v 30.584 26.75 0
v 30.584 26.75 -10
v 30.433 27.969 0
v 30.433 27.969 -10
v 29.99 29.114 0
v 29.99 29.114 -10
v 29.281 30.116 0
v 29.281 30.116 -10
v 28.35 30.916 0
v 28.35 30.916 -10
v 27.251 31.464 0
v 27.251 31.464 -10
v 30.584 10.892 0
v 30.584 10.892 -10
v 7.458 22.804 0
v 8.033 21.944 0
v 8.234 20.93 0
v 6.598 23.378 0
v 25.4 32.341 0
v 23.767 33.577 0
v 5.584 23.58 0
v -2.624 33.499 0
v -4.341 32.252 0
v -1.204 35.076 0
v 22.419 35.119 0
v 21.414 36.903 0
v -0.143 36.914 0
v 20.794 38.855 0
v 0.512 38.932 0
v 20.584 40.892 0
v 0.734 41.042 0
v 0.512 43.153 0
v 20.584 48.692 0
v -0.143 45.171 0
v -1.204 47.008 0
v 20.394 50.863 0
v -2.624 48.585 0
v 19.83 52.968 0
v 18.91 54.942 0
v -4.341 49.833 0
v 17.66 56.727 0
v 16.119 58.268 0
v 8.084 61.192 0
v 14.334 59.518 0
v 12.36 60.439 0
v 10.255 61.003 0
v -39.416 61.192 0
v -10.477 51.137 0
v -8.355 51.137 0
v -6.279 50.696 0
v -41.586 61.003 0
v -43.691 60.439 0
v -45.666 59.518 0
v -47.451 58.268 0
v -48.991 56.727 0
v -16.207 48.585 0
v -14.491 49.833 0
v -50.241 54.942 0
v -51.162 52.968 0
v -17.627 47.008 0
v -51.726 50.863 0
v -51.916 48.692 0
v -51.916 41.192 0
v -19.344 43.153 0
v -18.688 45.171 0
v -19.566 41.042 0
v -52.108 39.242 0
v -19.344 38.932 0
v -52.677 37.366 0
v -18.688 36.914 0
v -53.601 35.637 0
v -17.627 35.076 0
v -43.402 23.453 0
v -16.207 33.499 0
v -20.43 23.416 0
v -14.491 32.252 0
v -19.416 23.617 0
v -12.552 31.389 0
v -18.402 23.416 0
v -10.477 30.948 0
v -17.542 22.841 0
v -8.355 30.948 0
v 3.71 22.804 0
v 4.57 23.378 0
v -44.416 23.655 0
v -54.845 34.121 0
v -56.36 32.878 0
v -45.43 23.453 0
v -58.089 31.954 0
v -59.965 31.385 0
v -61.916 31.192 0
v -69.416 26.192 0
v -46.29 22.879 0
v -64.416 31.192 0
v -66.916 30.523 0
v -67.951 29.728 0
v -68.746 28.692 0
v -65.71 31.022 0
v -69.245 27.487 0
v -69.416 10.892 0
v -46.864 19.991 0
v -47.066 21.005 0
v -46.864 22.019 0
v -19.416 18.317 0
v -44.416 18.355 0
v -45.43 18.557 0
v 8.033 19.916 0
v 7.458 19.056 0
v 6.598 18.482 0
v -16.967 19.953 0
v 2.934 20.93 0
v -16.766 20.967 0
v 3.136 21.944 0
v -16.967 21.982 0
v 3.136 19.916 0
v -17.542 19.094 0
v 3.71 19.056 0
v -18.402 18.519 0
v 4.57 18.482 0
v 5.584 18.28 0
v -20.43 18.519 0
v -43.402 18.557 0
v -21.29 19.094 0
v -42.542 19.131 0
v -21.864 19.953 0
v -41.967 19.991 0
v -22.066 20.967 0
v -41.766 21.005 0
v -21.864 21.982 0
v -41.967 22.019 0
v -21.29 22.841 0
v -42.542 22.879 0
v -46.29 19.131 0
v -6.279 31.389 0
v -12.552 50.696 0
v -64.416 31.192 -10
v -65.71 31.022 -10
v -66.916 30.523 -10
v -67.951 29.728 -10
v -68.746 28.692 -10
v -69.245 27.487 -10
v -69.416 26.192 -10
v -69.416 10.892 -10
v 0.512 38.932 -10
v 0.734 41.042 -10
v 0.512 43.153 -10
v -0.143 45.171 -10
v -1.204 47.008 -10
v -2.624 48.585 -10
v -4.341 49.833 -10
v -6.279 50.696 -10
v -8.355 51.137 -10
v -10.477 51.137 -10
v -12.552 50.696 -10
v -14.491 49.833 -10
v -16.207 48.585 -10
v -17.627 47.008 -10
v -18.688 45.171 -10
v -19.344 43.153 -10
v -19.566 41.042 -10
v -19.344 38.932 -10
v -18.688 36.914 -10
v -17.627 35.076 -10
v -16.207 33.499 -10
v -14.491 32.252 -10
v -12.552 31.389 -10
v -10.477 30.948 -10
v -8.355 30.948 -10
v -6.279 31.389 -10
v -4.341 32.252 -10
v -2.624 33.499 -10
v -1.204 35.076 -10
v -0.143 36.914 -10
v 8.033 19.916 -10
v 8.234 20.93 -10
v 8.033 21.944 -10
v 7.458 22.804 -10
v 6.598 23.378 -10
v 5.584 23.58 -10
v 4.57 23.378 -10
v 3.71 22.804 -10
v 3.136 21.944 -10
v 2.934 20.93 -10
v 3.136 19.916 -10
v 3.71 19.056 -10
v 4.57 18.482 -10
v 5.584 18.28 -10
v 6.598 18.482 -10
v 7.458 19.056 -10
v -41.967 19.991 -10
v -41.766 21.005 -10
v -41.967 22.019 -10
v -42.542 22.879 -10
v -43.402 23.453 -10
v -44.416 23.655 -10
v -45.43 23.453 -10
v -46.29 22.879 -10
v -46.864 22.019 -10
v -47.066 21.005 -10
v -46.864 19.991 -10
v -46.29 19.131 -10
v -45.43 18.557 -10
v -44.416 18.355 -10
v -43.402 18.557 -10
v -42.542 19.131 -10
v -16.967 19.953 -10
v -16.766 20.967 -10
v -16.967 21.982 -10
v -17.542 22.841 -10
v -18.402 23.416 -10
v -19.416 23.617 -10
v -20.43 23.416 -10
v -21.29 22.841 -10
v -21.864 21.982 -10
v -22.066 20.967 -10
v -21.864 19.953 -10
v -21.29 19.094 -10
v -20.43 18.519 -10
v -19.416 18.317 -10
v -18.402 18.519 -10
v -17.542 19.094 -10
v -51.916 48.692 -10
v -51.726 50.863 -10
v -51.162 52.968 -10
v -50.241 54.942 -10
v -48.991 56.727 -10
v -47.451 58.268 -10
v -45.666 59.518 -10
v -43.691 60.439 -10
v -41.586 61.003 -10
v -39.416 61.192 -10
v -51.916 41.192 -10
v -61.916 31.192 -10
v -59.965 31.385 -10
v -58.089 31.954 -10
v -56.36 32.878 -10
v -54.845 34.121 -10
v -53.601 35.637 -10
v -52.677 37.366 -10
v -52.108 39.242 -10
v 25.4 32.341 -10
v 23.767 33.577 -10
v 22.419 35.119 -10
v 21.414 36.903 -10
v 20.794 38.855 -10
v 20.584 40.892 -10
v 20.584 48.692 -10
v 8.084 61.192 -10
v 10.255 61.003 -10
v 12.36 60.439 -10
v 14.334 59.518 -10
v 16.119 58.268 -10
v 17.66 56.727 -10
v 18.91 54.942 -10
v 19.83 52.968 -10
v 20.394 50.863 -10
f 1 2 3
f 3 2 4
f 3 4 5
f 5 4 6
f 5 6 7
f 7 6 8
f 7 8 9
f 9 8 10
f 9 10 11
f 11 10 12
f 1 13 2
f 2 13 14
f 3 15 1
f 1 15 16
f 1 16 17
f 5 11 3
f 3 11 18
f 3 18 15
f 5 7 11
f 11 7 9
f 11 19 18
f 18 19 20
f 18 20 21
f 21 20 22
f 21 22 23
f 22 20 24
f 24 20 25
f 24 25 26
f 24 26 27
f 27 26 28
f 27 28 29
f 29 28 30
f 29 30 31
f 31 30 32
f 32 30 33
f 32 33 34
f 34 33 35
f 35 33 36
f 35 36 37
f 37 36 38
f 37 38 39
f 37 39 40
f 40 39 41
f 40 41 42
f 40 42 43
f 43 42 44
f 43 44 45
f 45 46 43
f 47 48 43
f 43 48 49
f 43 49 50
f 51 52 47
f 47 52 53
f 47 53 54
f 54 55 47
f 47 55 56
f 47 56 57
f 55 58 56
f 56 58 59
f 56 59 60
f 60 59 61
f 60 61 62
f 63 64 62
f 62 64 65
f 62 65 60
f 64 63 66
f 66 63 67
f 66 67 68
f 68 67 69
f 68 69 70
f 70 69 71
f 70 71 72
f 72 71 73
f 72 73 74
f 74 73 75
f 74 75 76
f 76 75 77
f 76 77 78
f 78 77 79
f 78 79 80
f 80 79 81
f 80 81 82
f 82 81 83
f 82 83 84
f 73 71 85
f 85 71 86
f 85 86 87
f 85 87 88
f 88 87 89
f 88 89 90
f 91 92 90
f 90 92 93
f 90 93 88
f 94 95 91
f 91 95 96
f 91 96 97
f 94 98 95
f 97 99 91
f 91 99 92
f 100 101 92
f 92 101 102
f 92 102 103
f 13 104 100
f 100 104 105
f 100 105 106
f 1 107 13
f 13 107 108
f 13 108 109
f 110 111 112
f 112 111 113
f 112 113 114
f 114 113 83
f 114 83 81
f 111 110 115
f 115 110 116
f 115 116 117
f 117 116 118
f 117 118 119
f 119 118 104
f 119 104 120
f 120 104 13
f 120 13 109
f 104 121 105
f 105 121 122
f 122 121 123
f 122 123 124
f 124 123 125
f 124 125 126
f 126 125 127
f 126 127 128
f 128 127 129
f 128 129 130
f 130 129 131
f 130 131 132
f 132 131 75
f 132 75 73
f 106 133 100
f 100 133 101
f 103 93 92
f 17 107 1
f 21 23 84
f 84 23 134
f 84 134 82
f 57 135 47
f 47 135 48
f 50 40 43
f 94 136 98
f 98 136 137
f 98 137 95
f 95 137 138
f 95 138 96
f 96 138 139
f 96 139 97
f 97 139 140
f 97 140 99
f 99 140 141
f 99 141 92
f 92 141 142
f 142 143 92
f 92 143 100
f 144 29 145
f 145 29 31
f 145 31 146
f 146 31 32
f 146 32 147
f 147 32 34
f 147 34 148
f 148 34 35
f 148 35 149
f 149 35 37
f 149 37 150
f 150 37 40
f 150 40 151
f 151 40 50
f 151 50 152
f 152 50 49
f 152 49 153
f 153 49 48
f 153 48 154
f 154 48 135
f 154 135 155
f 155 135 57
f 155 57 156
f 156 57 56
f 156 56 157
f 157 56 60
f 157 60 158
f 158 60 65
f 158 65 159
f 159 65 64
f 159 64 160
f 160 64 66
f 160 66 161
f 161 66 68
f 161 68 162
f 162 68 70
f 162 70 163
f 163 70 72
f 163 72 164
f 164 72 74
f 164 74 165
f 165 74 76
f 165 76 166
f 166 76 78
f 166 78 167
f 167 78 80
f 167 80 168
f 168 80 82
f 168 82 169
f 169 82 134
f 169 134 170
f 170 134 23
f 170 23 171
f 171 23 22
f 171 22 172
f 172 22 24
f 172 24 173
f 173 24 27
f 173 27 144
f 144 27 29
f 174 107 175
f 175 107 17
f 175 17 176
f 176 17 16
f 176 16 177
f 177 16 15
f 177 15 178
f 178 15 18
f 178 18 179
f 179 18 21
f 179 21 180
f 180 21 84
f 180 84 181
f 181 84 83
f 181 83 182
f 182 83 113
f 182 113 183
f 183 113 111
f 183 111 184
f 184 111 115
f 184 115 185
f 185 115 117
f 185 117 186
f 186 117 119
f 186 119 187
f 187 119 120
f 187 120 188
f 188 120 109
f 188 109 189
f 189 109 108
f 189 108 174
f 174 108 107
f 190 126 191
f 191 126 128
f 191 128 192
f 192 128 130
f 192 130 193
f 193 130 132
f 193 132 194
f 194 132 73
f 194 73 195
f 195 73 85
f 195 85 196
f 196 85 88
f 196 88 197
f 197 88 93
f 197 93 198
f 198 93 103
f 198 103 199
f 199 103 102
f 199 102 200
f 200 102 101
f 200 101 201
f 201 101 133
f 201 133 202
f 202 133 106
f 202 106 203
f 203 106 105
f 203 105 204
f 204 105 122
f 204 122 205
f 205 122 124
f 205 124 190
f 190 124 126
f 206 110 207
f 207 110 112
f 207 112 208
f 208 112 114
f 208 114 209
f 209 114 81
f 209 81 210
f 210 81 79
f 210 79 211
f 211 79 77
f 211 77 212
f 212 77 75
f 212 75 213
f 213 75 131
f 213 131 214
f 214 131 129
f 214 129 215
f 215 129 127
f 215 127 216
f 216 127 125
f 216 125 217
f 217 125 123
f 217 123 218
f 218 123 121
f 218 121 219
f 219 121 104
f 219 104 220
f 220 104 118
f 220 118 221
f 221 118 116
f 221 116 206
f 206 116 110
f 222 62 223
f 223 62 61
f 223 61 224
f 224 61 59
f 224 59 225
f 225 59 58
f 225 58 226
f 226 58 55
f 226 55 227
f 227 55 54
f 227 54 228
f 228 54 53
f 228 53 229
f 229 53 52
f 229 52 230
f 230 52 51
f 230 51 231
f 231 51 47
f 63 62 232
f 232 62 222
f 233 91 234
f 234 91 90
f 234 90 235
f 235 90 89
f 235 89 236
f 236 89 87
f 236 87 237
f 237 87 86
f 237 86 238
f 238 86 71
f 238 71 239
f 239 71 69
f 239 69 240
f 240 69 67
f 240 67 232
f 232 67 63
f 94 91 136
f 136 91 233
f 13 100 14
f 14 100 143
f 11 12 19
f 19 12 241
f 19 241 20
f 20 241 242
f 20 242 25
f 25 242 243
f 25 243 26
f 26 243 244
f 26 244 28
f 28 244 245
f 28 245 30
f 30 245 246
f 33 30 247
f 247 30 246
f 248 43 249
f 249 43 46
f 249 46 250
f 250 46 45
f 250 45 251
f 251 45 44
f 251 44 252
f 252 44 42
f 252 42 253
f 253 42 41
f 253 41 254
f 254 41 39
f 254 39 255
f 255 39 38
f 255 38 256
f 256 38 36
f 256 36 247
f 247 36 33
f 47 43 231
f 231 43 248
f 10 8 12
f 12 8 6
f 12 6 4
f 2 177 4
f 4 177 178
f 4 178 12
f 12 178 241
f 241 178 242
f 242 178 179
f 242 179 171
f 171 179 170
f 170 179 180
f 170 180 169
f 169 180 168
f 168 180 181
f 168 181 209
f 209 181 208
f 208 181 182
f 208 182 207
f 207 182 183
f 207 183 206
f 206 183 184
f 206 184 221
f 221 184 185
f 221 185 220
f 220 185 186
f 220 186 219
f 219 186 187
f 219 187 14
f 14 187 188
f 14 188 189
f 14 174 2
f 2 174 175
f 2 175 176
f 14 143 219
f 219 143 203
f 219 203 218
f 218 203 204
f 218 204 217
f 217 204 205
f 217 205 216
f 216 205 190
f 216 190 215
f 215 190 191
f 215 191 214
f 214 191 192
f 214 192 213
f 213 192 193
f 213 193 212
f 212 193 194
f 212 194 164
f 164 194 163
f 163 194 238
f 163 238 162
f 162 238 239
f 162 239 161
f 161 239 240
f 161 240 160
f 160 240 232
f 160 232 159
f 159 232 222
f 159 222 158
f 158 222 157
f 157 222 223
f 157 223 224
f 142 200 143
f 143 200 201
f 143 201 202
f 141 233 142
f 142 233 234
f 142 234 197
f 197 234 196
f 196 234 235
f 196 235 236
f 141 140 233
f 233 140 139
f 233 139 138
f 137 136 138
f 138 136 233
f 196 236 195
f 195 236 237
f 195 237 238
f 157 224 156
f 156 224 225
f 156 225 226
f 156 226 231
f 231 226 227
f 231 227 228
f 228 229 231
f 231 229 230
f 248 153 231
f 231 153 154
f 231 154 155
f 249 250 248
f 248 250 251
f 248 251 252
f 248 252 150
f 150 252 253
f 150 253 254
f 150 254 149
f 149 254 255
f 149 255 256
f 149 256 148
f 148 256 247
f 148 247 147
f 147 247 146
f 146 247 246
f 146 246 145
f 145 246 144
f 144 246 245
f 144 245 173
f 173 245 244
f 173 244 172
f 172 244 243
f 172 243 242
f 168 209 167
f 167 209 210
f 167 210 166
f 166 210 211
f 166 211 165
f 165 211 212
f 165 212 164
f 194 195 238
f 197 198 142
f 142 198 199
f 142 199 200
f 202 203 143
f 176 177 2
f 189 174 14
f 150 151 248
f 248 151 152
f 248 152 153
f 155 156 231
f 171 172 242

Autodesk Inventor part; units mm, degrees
ref_plane "YZ Plane" through (0, 0, 0) normal (1, 0, 0) x (0, 1, 0)
ref_plane "XZ Plane" through (0, 0, 0) normal (0, 1, 0) x (-1, 0, 0)
ref_plane "XY Plane" through (0, 0, 0) normal (0, 0, 1) x (1, 0, 0)
sketch "Sketch1" plane through (0, 0, 0) normal (0, 0, 1) x (1, 0, 0)
  line L0 (30.5843, 30.8924) -> (30.5843, 10.8924)
  line L1 (30.5843, 10.8924) -> (-69.4157, 10.8924)
  line L2 (-69.4157, 10.8924) -> (-69.4157, 31.1924)
  line L3 (-69.4157, 21.0424) -> (30.5843, 20.8924) construction
  line L4 (-9.4157, 61.1924) -> (-39.4157, 61.1924)
  line L5 (-51.9157, 48.6924) -> (-51.9157, 41.1924)
  arc A0 (-39.4157, 61.1924) -> (-51.9157, 48.6924) centre (-39.4157, 48.6924) ccw
  line L6 (30.5843, 30.8924) -> (30.5843, 30.8924)
  line L7 (-61.9157, 31.1924) -> (-69.4157, 31.1924)
  arc A1 (-61.9157, 31.1924) -> (-51.9157, 41.1924) centre (-61.9157, 41.1924) ccw
  circle A2 centre (-19.4157, 20.9674) radius 2.65
  line L8 (-69.4157, 21.0424) -> (-19.4157, 20.9674) construction
  line L9 (-19.4157, 20.9674) -> (30.5843, 20.8924) construction
  circle A3 centre (-44.4157, 21.0049) radius 2.65
  circle A4 centre (5.5843, 20.9299) radius 2.65
  line L10 (-9.4157, 51.1924) -> (-9.4157, 30.8924) construction
  line L11 (-9.4157, 51.1924) -> (-9.4157, 30.8924) construction
  circle A5 centre (-9.4157, 41.0424) radius 10.15
  line L12 (-9.4157, 61.1924) -> (8.0843, 61.1924)
  line L13 (20.5843, 48.6924) -> (20.5843, 40.8924)
  arc A6 (20.5843, 48.6924) -> (8.0843, 61.1924) centre (8.0843, 48.6924) ccw
  arc A7 (20.5843, 40.8924) -> (30.5843, 30.8924) centre (30.5843, 40.8924) ccw
  point P0 (0, 0)
  point P1 (20.5843, 61.1924)
  point P2 (30.5843, 30.8924)
  dimension "d0" = 100
  dimension "d1" = 20
  dimension "d2" = 20.3
  dimension "d6" = 10
  dimension "d9" = 12.5
  dimension "d10" = 30
  dimension "d11" = 10
  dimension "d12" = 40
  dimension "d13" = 5.3
  dimension "d14" = 5.3
  dimension "d15" = 5.3
  dimension "d18" = 30
  dimension "d19" = 12.5
  dimension "d20" = 10
extrude "Extrusion1" add sketch "Sketch1" against normal blind 10
fillet "Fillet1" radius 5 2 edges at (-69.4157, 31.1924, -5) (30.5843, 30.8924, -5)
properties part number "bottomhingeholder"
